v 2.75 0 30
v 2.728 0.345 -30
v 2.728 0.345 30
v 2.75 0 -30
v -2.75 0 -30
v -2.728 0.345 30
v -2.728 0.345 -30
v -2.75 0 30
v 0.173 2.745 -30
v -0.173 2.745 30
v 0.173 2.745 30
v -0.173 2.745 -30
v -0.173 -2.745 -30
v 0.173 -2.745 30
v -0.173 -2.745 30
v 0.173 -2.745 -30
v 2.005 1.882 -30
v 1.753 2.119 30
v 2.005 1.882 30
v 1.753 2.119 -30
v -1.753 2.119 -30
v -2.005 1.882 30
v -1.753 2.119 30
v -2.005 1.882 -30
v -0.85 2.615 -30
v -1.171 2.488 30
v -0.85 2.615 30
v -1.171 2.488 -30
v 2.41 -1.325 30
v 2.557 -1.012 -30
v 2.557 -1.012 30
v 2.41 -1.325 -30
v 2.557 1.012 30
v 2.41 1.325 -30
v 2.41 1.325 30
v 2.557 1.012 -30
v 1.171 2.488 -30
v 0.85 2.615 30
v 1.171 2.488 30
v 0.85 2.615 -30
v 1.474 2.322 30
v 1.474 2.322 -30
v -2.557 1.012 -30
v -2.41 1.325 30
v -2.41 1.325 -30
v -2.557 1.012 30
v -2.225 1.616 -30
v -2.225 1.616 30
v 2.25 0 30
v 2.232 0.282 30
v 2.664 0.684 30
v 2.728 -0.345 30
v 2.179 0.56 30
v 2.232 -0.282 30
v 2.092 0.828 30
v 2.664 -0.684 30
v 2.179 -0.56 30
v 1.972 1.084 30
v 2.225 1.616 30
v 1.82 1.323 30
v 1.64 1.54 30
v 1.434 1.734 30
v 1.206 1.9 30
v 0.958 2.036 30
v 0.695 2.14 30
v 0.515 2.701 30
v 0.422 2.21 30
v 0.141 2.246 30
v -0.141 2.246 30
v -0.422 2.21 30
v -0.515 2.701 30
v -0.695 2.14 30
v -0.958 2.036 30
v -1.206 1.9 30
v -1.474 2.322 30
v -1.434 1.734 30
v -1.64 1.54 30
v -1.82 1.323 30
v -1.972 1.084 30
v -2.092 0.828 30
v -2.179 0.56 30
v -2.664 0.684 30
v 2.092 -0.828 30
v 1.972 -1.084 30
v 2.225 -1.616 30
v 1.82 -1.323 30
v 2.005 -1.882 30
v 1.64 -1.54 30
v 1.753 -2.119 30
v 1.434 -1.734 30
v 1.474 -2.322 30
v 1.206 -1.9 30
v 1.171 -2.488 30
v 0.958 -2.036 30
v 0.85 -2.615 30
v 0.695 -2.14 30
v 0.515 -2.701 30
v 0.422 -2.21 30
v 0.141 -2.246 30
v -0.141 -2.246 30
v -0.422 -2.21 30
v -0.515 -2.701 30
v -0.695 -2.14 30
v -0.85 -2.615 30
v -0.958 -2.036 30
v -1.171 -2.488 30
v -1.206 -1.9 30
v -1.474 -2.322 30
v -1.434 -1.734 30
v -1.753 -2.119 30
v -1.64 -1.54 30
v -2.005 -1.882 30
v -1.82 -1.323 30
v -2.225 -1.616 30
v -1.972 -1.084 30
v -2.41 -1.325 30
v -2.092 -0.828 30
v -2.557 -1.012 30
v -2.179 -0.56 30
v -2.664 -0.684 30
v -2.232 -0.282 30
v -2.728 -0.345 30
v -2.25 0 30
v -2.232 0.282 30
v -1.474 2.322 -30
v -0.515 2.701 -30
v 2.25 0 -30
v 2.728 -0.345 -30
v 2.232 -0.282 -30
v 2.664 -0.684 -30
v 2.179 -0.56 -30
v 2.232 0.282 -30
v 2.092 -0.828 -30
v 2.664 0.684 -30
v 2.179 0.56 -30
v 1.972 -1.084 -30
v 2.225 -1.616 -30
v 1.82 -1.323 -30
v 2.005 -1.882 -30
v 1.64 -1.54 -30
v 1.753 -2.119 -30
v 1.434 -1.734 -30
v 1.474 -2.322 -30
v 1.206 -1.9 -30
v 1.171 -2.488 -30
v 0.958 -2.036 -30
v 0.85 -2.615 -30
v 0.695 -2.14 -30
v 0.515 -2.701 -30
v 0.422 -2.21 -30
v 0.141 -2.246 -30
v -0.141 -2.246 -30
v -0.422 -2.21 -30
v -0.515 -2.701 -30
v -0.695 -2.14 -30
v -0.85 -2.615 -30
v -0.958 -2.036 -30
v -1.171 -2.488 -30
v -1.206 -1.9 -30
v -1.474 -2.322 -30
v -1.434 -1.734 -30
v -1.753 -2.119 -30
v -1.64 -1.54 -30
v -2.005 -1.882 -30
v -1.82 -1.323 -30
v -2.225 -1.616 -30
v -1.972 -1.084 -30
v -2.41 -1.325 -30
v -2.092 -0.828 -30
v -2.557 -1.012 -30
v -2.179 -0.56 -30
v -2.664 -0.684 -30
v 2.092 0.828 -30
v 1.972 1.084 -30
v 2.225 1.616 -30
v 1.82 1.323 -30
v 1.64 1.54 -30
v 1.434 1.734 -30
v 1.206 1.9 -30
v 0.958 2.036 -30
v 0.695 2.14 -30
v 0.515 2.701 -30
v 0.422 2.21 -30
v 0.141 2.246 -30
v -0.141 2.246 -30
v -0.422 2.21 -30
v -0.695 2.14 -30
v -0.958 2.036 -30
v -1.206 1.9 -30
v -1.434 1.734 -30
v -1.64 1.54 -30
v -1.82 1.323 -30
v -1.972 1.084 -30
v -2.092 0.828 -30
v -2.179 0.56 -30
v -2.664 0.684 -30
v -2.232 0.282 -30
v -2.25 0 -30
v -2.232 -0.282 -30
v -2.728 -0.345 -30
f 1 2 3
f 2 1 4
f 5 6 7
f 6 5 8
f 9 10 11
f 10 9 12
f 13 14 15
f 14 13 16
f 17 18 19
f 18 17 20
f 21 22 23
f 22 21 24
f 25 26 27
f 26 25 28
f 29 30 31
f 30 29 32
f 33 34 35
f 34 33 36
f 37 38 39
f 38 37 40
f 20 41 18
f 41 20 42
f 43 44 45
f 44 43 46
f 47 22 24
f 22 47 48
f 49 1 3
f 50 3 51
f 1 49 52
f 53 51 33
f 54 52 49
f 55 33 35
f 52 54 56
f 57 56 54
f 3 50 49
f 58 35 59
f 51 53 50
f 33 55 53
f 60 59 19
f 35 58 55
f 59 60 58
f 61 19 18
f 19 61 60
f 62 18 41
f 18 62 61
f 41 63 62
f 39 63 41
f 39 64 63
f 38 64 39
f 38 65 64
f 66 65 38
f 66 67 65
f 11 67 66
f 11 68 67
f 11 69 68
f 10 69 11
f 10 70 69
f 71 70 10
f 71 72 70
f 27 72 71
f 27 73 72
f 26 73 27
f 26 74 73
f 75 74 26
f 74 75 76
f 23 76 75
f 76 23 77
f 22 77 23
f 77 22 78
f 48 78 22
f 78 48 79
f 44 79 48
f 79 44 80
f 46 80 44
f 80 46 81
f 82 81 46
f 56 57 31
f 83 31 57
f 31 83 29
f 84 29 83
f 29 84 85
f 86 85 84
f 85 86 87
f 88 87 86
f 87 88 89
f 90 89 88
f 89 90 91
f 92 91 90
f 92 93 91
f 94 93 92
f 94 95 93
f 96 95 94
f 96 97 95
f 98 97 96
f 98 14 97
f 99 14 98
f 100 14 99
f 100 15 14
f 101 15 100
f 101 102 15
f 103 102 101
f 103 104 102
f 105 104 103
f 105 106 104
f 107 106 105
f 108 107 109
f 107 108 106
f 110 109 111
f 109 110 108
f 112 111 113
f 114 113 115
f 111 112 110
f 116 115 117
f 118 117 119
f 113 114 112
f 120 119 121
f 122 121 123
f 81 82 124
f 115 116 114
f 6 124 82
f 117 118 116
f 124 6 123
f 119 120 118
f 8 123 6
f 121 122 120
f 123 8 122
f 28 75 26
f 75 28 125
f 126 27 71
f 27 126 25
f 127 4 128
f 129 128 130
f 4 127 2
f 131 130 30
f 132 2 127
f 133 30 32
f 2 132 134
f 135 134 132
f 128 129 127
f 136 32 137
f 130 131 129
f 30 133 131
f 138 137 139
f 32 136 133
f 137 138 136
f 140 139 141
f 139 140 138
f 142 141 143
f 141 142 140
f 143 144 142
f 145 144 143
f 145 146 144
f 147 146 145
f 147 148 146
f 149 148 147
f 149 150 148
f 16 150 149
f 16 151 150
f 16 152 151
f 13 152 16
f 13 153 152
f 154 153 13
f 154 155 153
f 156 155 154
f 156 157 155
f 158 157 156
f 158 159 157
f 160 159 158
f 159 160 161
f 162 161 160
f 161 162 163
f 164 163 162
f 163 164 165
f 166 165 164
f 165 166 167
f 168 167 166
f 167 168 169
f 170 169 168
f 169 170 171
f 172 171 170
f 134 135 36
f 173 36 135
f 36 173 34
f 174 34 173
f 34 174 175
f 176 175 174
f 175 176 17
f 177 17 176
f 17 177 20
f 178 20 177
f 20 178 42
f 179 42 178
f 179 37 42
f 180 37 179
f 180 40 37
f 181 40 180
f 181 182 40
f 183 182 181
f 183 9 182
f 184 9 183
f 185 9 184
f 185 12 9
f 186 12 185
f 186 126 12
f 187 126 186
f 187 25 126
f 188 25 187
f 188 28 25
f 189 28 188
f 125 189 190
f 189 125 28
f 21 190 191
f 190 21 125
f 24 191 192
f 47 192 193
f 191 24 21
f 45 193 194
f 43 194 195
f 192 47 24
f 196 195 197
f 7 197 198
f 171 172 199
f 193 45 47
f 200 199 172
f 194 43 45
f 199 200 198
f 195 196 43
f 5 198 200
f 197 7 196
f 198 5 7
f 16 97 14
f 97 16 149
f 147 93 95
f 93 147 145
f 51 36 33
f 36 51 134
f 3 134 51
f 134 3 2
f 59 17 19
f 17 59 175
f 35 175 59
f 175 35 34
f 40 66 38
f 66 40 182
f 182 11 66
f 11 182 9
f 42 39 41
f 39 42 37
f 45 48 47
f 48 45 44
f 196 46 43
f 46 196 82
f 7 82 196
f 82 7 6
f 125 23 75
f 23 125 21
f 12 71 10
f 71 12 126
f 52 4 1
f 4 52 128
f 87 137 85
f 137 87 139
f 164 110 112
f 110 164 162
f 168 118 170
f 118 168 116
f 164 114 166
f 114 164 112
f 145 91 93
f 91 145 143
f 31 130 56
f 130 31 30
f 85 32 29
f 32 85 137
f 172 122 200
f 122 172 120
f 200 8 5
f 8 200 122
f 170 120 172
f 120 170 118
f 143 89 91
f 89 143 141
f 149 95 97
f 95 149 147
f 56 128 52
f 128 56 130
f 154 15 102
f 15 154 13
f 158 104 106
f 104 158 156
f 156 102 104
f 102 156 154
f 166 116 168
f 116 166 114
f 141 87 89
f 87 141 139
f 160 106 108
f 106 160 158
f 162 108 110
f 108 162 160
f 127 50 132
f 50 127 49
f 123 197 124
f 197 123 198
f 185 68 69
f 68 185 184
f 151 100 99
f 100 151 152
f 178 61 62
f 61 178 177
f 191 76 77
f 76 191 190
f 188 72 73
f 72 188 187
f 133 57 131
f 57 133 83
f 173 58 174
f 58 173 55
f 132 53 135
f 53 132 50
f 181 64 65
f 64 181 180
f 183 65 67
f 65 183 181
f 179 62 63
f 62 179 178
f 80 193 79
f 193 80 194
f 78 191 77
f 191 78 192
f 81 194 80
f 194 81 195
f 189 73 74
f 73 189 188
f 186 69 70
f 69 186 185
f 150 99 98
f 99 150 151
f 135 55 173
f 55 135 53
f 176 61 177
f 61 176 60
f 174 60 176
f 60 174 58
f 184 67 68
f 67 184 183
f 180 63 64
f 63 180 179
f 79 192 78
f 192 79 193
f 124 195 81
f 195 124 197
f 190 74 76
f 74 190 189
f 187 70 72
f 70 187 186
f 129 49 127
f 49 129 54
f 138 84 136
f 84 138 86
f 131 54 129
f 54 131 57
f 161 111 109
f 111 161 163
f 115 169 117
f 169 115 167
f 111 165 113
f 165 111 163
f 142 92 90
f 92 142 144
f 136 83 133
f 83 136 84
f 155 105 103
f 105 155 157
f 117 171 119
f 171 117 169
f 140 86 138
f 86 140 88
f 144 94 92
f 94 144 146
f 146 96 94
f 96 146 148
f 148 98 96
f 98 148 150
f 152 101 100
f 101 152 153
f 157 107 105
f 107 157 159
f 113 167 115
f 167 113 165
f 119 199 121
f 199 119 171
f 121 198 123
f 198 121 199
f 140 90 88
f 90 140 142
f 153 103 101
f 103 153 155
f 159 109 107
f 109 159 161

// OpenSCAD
$fn = 50;


difference() {
	union() {
		translate(v = [0, 0, -30.0000000000]) {
			cylinder(h = 60, r = 2.7500000000);
		}
	}
	union() {
		translate(v = [0, 0, -100.0000000000]) {
			cylinder(h = 200, r = 2.2500000000);
		}
	}
}
